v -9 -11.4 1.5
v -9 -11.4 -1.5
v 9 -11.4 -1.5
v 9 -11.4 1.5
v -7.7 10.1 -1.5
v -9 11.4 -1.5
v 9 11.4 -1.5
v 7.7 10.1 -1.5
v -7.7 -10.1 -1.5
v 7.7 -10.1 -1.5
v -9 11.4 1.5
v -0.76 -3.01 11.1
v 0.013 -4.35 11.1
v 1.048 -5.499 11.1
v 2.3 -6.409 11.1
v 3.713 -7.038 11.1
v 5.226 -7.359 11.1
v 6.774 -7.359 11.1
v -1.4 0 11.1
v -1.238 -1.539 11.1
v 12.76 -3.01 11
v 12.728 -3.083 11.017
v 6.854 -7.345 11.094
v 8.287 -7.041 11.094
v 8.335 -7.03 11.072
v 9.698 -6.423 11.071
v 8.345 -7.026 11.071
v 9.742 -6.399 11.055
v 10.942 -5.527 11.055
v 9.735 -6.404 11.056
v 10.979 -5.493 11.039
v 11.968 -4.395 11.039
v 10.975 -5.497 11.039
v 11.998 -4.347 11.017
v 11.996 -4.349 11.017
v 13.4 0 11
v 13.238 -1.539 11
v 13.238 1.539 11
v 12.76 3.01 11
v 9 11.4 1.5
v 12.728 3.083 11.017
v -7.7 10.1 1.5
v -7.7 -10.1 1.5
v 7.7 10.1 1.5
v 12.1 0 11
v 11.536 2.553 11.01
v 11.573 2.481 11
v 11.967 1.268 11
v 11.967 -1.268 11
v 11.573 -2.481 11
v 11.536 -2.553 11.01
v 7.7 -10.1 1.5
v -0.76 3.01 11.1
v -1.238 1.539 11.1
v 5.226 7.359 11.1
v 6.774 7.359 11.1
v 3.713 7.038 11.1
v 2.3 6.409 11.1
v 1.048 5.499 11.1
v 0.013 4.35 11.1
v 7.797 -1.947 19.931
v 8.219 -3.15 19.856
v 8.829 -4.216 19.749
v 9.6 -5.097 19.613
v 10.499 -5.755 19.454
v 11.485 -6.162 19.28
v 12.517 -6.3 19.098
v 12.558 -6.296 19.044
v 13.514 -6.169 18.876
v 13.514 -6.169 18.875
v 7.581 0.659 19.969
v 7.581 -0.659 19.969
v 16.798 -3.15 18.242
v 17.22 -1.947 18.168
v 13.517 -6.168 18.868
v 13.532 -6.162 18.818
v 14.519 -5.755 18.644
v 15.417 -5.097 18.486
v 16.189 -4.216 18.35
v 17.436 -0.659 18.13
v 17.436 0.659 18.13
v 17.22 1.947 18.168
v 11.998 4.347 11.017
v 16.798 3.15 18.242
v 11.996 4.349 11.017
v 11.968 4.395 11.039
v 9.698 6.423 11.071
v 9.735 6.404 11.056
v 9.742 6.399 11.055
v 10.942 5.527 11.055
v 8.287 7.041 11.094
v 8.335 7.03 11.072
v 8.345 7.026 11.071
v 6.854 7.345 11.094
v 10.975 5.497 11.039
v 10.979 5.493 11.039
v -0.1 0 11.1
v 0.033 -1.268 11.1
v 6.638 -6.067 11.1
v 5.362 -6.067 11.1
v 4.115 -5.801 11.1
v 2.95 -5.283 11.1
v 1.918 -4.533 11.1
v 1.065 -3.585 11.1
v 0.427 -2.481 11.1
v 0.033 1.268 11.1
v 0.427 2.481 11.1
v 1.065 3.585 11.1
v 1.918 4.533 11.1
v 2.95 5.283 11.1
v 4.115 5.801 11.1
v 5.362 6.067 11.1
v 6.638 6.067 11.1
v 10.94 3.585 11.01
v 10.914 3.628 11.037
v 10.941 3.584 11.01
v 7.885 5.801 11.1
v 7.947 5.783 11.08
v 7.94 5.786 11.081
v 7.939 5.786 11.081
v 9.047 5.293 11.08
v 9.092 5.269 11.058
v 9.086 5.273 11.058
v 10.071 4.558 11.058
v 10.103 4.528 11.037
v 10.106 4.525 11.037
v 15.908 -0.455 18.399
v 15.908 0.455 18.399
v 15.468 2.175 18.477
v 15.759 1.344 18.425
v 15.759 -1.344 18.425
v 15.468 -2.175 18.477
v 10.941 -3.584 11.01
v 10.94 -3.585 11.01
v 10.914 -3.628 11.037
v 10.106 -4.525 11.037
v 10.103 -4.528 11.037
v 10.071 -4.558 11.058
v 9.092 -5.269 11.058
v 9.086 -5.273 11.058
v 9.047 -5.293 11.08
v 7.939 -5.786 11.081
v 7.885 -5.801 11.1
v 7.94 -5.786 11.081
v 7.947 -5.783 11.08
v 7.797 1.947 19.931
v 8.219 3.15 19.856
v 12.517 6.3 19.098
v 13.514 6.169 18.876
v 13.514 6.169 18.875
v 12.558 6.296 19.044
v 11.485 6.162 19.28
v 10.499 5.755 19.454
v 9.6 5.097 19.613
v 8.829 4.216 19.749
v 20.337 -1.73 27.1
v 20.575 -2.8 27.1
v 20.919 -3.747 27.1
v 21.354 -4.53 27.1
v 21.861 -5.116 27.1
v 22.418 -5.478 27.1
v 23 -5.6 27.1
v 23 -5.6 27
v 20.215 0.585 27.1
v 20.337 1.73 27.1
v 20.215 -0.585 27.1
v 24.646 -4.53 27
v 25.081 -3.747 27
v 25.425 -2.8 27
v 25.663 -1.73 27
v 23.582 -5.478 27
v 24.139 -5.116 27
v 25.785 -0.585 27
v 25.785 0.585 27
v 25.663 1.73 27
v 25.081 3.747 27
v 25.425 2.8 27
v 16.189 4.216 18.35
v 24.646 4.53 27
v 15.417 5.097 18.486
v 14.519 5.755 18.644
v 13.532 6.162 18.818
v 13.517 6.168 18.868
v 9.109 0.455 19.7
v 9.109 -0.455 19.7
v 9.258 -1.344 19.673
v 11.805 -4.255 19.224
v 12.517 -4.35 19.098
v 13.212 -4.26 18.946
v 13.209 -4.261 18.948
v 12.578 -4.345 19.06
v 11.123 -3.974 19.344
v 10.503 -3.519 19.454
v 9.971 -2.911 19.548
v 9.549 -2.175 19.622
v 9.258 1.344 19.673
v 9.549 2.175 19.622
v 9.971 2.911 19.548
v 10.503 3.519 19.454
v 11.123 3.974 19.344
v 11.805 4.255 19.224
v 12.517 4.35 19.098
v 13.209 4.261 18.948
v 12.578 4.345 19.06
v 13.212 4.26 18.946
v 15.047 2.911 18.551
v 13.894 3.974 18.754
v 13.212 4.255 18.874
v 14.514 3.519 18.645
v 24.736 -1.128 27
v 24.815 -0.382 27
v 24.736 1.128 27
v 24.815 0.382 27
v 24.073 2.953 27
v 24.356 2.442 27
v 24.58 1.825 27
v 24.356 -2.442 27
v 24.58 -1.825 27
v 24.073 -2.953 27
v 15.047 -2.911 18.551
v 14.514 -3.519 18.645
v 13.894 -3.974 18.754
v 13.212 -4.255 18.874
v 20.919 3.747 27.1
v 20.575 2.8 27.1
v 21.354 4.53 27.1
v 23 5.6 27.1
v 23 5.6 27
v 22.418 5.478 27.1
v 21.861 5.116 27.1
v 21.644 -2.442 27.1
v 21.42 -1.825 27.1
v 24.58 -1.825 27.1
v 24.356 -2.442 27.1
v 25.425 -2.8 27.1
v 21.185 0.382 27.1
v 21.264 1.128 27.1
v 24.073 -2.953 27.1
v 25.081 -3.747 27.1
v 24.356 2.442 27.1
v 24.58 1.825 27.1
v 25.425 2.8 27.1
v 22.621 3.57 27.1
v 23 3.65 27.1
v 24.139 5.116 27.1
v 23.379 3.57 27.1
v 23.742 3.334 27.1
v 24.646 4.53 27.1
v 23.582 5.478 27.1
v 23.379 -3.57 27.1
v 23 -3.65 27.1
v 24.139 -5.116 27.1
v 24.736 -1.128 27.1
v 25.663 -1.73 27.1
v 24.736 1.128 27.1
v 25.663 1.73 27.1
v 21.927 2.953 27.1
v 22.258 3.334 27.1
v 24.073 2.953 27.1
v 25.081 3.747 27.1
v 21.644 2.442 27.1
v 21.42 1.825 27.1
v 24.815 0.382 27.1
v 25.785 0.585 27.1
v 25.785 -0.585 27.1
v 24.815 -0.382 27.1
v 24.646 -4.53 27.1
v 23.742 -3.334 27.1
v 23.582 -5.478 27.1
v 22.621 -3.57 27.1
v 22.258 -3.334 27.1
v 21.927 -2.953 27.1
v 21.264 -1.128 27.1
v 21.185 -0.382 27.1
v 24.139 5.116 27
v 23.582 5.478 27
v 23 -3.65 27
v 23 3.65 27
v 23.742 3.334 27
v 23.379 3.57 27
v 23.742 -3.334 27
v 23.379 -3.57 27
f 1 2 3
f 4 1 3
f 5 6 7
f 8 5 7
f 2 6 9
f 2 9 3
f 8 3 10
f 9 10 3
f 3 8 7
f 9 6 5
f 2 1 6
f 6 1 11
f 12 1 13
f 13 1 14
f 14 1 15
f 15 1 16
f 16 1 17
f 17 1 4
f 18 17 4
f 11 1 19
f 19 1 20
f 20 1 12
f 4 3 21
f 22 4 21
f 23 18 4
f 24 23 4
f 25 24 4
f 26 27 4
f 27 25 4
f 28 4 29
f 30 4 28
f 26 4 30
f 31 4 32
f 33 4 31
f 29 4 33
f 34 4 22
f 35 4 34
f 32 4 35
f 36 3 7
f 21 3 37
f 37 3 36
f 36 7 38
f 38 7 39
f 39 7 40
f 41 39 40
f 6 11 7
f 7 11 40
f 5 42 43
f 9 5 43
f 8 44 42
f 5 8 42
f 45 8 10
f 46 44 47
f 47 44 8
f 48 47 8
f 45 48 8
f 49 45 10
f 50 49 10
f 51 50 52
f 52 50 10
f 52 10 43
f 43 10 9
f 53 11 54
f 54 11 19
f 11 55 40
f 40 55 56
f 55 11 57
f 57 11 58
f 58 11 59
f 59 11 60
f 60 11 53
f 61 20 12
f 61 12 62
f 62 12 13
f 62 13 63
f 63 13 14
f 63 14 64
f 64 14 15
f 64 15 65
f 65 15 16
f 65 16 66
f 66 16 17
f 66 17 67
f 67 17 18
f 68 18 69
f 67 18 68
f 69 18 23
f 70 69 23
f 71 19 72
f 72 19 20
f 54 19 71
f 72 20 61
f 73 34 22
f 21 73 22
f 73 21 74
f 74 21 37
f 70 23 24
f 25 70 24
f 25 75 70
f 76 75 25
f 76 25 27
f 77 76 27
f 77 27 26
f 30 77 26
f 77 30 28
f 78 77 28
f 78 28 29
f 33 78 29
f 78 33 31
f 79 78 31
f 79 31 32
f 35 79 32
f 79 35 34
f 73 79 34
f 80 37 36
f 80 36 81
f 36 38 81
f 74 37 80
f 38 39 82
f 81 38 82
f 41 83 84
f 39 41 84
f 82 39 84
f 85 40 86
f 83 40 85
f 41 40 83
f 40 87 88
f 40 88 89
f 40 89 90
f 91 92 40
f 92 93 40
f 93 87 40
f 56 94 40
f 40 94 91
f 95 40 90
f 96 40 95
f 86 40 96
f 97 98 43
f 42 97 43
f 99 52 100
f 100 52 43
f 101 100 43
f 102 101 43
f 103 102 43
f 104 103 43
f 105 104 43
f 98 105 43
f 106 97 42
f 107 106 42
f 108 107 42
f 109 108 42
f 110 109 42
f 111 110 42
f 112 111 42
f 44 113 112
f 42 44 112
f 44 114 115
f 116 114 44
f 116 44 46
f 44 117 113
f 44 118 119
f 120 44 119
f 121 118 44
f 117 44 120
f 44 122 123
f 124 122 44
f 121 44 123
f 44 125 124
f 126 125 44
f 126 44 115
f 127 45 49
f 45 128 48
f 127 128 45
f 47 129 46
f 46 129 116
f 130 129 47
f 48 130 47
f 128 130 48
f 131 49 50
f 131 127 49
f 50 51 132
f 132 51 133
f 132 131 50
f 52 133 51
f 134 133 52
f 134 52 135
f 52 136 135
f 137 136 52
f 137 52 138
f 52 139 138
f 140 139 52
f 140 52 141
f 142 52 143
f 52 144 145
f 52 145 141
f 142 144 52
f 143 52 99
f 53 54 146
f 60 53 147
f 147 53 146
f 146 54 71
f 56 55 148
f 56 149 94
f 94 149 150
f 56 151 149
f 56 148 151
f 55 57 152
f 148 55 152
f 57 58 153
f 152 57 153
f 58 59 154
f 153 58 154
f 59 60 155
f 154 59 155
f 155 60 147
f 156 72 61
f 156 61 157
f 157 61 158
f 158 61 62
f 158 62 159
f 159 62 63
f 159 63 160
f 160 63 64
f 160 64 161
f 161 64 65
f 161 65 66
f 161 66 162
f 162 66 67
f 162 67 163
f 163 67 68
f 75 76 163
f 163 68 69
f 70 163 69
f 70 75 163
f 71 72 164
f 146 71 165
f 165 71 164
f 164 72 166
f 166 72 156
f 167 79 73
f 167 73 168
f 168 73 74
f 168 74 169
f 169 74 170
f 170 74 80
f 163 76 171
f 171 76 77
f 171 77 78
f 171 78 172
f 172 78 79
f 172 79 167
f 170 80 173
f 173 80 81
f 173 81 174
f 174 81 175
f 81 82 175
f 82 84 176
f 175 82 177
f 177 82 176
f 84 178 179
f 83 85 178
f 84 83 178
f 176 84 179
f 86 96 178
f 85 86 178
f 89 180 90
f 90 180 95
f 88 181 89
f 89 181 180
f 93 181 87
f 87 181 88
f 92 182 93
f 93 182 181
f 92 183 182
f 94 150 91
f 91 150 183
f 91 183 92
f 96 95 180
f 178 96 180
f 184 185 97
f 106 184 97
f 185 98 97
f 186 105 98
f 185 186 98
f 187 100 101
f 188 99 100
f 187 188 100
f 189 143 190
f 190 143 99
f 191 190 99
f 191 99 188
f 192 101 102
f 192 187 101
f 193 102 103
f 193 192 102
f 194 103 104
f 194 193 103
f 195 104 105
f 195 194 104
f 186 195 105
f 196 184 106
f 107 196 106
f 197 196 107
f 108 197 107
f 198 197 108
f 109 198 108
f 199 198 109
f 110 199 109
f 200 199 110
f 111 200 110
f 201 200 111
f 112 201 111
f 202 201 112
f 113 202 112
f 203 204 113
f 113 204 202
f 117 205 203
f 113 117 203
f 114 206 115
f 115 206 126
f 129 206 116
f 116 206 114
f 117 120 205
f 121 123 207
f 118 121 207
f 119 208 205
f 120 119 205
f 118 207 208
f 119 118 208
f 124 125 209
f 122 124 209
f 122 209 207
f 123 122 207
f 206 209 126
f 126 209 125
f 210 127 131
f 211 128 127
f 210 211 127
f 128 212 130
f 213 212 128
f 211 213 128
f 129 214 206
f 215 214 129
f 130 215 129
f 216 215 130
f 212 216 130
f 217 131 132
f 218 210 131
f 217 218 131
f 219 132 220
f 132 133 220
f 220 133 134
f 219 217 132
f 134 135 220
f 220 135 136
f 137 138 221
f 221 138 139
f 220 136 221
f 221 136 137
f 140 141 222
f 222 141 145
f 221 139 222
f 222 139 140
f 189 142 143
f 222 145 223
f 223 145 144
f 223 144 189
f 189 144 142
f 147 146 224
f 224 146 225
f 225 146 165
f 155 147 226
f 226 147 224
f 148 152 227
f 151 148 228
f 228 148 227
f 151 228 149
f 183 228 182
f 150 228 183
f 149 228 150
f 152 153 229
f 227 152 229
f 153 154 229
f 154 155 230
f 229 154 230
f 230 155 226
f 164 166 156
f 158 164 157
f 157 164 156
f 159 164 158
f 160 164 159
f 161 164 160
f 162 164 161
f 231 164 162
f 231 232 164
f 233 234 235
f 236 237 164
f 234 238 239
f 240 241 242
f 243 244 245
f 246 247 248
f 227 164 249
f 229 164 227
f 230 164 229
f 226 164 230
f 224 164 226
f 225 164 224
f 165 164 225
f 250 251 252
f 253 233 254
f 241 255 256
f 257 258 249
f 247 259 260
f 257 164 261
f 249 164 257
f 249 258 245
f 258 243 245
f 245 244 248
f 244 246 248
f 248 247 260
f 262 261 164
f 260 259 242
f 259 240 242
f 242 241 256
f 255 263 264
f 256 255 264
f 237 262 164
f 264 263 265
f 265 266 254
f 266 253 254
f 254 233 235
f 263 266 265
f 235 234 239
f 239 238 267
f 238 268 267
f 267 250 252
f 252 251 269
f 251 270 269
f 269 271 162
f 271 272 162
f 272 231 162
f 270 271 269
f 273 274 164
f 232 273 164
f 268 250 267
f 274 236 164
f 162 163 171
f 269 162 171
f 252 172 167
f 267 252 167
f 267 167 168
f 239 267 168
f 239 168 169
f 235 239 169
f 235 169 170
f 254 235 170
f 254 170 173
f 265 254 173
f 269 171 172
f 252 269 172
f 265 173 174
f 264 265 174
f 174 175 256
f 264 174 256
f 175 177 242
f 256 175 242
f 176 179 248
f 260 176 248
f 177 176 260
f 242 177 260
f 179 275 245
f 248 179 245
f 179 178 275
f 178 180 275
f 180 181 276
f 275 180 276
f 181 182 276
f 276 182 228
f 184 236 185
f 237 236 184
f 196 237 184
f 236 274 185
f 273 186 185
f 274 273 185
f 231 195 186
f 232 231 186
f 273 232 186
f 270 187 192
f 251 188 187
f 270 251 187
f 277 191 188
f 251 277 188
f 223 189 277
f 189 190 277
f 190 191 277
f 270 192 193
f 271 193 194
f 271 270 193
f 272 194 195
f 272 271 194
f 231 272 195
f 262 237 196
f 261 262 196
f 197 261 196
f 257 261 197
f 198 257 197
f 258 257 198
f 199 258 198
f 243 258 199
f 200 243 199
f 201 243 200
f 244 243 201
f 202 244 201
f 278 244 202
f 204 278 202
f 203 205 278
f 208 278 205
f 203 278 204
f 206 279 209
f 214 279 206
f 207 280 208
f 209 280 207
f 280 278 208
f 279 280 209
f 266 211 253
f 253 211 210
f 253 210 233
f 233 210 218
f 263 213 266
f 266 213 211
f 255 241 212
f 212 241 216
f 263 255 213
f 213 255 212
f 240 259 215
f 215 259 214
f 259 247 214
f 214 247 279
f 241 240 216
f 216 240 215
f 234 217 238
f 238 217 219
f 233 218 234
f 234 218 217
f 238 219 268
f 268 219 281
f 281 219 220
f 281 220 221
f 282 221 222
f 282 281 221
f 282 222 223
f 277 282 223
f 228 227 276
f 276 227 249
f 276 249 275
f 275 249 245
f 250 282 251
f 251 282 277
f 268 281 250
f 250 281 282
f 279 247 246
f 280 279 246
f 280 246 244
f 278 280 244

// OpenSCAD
//-- Blower (centrifugal) fan duct for the Direct Drive
//-- Extruder by Marty Rice.
//-- AndrewBCN - Barcelona, November 2014
//-- GPLV3

//-- based on source code by Robert Quattlebaum (darco)
//-- Thingiverse #387301

//-- uses a 5015S 12V blower (centrifugal) fan

$fs=0.1;

module FanDuct() {
	tol=0.10;
	wallThickness=1.3; // tested with 1.3mm, but original value was 0.8mm and should work too

	module Shape(dia) {
		hull() {
			cube([15.2+dia*2,20+dia*2,3],center=true);
			translate([6,0,11]) cylinder(r=6+dia,h=0.1);
		}
		hull() {
			translate([6,0,11]) cylinder(r=6+dia,h=0.1);
			translate([12.5,0,19]) rotate([10,0,90]) scale([1,0.8,1]) cylinder(r=4.2+dia*1.5,h=0.1);
		}
		hull() {
			translate([12.5,0,19]) rotate([10,0,90]) scale([1,0.8,1]) cylinder(r=4.2+dia*1.5,h=0.1);
			translate([23,0,27]) rotate([0,0,90]) scale([1,0.5,1]) cylinder(r=3.5+dia*1.5,h=0.1);
		}
	}

	difference() {
		Shape(dia=wallThickness+tol);
		Shape(dia=tol);
	}
}


FanDuct();
